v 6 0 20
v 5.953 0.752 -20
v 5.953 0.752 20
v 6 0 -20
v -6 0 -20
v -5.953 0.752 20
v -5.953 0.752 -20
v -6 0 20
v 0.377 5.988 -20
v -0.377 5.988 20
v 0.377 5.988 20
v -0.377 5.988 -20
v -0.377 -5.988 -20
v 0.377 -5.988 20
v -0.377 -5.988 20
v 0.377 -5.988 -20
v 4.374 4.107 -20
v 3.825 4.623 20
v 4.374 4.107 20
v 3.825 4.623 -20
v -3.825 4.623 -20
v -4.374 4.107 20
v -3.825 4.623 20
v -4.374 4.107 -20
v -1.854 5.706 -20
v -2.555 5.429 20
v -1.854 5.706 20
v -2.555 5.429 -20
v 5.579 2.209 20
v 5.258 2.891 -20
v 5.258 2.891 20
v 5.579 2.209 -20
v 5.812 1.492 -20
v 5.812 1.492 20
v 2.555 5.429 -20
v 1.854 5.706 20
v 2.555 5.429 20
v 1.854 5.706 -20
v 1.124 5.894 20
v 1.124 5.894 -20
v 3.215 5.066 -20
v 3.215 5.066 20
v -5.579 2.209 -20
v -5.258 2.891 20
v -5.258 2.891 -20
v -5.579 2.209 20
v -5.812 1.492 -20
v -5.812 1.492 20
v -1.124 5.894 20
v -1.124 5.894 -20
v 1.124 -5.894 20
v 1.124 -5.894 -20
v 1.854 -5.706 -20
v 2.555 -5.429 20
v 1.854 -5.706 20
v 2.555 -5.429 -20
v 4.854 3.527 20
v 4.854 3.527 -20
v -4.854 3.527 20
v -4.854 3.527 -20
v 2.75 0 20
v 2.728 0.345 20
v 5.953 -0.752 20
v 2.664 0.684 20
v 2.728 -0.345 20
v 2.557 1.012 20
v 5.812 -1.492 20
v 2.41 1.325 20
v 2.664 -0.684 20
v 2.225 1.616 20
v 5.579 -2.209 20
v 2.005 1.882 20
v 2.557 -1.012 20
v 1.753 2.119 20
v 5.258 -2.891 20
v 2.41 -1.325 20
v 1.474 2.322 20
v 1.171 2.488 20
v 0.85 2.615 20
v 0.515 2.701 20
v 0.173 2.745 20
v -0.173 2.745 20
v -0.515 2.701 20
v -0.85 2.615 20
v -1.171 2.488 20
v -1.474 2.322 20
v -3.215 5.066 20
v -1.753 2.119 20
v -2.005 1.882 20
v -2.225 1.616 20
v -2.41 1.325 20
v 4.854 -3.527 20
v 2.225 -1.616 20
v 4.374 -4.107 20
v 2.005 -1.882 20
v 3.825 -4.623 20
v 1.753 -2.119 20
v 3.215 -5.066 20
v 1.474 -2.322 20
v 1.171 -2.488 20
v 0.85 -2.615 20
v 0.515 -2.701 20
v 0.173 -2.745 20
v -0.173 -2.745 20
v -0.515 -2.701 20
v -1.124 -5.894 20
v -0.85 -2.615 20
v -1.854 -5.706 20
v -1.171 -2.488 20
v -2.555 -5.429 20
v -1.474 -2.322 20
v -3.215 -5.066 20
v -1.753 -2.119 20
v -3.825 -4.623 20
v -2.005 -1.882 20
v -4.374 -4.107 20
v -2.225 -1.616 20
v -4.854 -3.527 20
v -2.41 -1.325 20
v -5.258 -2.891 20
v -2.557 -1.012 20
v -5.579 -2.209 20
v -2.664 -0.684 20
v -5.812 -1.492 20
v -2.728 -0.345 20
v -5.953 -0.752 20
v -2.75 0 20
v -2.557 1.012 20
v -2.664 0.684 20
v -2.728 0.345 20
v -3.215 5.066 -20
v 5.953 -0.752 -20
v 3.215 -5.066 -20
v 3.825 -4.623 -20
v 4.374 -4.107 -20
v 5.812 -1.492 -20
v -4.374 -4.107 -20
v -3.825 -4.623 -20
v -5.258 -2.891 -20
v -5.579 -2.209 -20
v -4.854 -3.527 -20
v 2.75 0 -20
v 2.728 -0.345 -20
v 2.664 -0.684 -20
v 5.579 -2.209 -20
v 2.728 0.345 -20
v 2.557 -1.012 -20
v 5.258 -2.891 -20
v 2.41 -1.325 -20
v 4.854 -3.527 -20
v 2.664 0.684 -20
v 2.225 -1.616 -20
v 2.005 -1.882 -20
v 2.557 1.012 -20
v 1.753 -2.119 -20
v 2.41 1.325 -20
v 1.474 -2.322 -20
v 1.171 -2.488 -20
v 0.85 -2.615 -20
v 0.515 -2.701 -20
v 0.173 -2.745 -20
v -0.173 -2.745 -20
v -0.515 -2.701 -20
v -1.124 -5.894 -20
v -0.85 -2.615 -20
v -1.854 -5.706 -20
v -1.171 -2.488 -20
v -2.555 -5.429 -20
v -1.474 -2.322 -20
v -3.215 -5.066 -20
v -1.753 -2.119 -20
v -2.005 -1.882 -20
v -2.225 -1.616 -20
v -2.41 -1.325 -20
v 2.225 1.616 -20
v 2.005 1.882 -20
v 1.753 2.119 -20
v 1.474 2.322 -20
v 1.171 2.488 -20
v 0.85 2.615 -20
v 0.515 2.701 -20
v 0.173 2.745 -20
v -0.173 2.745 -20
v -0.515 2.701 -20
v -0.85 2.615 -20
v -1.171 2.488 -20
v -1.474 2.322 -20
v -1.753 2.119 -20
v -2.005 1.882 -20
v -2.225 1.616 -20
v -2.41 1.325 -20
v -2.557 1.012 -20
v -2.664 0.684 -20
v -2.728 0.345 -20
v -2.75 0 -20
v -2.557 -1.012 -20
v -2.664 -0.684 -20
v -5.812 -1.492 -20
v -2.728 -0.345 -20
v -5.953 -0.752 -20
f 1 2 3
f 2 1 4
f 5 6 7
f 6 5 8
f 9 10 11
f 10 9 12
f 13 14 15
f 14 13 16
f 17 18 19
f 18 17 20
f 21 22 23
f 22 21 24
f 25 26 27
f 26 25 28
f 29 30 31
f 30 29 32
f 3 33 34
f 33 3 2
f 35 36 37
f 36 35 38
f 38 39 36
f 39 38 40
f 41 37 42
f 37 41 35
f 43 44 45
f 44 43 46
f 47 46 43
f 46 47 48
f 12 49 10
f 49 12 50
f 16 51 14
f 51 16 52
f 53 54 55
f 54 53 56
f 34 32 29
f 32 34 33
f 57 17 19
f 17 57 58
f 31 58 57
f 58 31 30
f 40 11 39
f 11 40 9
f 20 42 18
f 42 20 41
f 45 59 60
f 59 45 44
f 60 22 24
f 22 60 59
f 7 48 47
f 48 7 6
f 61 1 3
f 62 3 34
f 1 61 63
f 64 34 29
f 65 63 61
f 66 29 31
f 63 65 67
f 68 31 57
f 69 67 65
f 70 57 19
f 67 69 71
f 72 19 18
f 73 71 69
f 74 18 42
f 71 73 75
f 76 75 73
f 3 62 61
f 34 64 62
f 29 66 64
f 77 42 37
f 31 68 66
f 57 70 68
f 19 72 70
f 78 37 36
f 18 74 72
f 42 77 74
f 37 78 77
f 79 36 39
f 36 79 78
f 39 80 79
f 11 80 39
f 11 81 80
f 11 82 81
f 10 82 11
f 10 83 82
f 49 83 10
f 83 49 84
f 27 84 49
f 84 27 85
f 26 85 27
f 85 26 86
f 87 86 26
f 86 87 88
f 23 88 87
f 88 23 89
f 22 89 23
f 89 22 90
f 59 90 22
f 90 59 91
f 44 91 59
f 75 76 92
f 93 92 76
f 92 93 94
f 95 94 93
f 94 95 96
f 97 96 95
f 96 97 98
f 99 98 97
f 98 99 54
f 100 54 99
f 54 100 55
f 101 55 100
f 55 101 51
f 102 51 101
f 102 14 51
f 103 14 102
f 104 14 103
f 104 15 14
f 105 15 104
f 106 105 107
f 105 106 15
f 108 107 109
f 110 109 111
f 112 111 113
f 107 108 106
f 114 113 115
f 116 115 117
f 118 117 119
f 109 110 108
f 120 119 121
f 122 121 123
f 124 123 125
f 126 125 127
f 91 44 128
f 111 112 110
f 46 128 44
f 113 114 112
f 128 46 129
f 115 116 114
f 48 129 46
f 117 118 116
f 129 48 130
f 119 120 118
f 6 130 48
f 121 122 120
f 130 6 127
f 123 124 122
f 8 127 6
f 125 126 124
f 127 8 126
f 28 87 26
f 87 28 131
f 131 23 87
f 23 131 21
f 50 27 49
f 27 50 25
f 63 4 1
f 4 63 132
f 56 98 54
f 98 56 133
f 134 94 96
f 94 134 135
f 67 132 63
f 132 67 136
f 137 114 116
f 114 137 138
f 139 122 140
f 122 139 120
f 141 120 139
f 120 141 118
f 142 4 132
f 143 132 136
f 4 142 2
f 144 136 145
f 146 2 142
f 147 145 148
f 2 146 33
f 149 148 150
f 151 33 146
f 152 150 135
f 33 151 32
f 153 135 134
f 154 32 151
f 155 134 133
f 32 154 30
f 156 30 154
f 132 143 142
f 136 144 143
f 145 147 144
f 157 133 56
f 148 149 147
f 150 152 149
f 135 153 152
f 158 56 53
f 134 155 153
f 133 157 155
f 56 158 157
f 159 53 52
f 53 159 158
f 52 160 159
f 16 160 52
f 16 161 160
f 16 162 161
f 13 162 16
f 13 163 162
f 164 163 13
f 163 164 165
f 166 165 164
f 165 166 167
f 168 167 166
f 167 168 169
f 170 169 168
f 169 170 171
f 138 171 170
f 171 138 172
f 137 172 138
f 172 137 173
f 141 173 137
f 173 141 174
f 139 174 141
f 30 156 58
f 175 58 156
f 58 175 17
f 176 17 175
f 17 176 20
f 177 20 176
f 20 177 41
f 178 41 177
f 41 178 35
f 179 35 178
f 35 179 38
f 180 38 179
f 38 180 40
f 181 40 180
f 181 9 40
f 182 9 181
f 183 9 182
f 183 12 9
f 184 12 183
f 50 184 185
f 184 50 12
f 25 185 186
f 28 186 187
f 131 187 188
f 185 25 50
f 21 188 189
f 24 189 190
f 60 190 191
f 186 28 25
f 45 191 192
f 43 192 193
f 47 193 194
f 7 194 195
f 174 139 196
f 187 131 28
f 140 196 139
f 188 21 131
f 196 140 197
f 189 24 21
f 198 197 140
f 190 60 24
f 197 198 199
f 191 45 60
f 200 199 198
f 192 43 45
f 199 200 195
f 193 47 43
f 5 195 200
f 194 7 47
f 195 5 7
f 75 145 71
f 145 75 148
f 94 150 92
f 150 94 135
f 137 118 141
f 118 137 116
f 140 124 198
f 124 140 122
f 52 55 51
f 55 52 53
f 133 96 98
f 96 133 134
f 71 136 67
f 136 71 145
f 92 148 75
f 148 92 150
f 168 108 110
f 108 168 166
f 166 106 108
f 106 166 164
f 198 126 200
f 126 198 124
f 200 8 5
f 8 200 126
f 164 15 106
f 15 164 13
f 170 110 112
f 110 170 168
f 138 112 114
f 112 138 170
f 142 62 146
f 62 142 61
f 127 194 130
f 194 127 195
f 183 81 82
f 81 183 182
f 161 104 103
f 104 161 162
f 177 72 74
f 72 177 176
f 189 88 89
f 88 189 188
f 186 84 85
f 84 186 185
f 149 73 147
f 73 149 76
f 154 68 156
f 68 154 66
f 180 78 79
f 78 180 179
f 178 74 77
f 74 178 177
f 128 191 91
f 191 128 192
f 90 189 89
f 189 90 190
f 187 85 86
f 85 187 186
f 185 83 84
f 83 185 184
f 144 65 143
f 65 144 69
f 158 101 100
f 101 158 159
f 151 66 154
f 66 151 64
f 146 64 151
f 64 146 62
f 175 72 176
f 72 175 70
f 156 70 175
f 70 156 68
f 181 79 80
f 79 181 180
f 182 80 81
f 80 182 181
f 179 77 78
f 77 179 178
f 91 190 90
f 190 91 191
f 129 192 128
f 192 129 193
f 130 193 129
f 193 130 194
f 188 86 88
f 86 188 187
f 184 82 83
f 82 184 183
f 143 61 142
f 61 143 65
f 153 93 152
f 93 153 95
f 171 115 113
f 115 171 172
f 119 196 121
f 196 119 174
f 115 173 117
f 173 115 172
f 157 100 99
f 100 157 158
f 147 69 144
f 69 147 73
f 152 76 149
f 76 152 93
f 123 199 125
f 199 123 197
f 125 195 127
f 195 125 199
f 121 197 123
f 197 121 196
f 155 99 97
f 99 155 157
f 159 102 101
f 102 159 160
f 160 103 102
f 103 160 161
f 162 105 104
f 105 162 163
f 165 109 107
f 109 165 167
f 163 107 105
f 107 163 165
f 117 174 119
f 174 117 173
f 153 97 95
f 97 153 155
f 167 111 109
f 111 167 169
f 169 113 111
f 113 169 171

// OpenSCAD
$fn = 50;


difference() {
	union() {
		translate(v = [0, 0, -20.0000000000]) {
			cylinder(h = 40, r = 6.0000000000);
		}
	}
	union() {
		translate(v = [0, 0, -100.0000000000]) {
			cylinder(h = 200, r = 2.7500000000);
		}
	}
}
